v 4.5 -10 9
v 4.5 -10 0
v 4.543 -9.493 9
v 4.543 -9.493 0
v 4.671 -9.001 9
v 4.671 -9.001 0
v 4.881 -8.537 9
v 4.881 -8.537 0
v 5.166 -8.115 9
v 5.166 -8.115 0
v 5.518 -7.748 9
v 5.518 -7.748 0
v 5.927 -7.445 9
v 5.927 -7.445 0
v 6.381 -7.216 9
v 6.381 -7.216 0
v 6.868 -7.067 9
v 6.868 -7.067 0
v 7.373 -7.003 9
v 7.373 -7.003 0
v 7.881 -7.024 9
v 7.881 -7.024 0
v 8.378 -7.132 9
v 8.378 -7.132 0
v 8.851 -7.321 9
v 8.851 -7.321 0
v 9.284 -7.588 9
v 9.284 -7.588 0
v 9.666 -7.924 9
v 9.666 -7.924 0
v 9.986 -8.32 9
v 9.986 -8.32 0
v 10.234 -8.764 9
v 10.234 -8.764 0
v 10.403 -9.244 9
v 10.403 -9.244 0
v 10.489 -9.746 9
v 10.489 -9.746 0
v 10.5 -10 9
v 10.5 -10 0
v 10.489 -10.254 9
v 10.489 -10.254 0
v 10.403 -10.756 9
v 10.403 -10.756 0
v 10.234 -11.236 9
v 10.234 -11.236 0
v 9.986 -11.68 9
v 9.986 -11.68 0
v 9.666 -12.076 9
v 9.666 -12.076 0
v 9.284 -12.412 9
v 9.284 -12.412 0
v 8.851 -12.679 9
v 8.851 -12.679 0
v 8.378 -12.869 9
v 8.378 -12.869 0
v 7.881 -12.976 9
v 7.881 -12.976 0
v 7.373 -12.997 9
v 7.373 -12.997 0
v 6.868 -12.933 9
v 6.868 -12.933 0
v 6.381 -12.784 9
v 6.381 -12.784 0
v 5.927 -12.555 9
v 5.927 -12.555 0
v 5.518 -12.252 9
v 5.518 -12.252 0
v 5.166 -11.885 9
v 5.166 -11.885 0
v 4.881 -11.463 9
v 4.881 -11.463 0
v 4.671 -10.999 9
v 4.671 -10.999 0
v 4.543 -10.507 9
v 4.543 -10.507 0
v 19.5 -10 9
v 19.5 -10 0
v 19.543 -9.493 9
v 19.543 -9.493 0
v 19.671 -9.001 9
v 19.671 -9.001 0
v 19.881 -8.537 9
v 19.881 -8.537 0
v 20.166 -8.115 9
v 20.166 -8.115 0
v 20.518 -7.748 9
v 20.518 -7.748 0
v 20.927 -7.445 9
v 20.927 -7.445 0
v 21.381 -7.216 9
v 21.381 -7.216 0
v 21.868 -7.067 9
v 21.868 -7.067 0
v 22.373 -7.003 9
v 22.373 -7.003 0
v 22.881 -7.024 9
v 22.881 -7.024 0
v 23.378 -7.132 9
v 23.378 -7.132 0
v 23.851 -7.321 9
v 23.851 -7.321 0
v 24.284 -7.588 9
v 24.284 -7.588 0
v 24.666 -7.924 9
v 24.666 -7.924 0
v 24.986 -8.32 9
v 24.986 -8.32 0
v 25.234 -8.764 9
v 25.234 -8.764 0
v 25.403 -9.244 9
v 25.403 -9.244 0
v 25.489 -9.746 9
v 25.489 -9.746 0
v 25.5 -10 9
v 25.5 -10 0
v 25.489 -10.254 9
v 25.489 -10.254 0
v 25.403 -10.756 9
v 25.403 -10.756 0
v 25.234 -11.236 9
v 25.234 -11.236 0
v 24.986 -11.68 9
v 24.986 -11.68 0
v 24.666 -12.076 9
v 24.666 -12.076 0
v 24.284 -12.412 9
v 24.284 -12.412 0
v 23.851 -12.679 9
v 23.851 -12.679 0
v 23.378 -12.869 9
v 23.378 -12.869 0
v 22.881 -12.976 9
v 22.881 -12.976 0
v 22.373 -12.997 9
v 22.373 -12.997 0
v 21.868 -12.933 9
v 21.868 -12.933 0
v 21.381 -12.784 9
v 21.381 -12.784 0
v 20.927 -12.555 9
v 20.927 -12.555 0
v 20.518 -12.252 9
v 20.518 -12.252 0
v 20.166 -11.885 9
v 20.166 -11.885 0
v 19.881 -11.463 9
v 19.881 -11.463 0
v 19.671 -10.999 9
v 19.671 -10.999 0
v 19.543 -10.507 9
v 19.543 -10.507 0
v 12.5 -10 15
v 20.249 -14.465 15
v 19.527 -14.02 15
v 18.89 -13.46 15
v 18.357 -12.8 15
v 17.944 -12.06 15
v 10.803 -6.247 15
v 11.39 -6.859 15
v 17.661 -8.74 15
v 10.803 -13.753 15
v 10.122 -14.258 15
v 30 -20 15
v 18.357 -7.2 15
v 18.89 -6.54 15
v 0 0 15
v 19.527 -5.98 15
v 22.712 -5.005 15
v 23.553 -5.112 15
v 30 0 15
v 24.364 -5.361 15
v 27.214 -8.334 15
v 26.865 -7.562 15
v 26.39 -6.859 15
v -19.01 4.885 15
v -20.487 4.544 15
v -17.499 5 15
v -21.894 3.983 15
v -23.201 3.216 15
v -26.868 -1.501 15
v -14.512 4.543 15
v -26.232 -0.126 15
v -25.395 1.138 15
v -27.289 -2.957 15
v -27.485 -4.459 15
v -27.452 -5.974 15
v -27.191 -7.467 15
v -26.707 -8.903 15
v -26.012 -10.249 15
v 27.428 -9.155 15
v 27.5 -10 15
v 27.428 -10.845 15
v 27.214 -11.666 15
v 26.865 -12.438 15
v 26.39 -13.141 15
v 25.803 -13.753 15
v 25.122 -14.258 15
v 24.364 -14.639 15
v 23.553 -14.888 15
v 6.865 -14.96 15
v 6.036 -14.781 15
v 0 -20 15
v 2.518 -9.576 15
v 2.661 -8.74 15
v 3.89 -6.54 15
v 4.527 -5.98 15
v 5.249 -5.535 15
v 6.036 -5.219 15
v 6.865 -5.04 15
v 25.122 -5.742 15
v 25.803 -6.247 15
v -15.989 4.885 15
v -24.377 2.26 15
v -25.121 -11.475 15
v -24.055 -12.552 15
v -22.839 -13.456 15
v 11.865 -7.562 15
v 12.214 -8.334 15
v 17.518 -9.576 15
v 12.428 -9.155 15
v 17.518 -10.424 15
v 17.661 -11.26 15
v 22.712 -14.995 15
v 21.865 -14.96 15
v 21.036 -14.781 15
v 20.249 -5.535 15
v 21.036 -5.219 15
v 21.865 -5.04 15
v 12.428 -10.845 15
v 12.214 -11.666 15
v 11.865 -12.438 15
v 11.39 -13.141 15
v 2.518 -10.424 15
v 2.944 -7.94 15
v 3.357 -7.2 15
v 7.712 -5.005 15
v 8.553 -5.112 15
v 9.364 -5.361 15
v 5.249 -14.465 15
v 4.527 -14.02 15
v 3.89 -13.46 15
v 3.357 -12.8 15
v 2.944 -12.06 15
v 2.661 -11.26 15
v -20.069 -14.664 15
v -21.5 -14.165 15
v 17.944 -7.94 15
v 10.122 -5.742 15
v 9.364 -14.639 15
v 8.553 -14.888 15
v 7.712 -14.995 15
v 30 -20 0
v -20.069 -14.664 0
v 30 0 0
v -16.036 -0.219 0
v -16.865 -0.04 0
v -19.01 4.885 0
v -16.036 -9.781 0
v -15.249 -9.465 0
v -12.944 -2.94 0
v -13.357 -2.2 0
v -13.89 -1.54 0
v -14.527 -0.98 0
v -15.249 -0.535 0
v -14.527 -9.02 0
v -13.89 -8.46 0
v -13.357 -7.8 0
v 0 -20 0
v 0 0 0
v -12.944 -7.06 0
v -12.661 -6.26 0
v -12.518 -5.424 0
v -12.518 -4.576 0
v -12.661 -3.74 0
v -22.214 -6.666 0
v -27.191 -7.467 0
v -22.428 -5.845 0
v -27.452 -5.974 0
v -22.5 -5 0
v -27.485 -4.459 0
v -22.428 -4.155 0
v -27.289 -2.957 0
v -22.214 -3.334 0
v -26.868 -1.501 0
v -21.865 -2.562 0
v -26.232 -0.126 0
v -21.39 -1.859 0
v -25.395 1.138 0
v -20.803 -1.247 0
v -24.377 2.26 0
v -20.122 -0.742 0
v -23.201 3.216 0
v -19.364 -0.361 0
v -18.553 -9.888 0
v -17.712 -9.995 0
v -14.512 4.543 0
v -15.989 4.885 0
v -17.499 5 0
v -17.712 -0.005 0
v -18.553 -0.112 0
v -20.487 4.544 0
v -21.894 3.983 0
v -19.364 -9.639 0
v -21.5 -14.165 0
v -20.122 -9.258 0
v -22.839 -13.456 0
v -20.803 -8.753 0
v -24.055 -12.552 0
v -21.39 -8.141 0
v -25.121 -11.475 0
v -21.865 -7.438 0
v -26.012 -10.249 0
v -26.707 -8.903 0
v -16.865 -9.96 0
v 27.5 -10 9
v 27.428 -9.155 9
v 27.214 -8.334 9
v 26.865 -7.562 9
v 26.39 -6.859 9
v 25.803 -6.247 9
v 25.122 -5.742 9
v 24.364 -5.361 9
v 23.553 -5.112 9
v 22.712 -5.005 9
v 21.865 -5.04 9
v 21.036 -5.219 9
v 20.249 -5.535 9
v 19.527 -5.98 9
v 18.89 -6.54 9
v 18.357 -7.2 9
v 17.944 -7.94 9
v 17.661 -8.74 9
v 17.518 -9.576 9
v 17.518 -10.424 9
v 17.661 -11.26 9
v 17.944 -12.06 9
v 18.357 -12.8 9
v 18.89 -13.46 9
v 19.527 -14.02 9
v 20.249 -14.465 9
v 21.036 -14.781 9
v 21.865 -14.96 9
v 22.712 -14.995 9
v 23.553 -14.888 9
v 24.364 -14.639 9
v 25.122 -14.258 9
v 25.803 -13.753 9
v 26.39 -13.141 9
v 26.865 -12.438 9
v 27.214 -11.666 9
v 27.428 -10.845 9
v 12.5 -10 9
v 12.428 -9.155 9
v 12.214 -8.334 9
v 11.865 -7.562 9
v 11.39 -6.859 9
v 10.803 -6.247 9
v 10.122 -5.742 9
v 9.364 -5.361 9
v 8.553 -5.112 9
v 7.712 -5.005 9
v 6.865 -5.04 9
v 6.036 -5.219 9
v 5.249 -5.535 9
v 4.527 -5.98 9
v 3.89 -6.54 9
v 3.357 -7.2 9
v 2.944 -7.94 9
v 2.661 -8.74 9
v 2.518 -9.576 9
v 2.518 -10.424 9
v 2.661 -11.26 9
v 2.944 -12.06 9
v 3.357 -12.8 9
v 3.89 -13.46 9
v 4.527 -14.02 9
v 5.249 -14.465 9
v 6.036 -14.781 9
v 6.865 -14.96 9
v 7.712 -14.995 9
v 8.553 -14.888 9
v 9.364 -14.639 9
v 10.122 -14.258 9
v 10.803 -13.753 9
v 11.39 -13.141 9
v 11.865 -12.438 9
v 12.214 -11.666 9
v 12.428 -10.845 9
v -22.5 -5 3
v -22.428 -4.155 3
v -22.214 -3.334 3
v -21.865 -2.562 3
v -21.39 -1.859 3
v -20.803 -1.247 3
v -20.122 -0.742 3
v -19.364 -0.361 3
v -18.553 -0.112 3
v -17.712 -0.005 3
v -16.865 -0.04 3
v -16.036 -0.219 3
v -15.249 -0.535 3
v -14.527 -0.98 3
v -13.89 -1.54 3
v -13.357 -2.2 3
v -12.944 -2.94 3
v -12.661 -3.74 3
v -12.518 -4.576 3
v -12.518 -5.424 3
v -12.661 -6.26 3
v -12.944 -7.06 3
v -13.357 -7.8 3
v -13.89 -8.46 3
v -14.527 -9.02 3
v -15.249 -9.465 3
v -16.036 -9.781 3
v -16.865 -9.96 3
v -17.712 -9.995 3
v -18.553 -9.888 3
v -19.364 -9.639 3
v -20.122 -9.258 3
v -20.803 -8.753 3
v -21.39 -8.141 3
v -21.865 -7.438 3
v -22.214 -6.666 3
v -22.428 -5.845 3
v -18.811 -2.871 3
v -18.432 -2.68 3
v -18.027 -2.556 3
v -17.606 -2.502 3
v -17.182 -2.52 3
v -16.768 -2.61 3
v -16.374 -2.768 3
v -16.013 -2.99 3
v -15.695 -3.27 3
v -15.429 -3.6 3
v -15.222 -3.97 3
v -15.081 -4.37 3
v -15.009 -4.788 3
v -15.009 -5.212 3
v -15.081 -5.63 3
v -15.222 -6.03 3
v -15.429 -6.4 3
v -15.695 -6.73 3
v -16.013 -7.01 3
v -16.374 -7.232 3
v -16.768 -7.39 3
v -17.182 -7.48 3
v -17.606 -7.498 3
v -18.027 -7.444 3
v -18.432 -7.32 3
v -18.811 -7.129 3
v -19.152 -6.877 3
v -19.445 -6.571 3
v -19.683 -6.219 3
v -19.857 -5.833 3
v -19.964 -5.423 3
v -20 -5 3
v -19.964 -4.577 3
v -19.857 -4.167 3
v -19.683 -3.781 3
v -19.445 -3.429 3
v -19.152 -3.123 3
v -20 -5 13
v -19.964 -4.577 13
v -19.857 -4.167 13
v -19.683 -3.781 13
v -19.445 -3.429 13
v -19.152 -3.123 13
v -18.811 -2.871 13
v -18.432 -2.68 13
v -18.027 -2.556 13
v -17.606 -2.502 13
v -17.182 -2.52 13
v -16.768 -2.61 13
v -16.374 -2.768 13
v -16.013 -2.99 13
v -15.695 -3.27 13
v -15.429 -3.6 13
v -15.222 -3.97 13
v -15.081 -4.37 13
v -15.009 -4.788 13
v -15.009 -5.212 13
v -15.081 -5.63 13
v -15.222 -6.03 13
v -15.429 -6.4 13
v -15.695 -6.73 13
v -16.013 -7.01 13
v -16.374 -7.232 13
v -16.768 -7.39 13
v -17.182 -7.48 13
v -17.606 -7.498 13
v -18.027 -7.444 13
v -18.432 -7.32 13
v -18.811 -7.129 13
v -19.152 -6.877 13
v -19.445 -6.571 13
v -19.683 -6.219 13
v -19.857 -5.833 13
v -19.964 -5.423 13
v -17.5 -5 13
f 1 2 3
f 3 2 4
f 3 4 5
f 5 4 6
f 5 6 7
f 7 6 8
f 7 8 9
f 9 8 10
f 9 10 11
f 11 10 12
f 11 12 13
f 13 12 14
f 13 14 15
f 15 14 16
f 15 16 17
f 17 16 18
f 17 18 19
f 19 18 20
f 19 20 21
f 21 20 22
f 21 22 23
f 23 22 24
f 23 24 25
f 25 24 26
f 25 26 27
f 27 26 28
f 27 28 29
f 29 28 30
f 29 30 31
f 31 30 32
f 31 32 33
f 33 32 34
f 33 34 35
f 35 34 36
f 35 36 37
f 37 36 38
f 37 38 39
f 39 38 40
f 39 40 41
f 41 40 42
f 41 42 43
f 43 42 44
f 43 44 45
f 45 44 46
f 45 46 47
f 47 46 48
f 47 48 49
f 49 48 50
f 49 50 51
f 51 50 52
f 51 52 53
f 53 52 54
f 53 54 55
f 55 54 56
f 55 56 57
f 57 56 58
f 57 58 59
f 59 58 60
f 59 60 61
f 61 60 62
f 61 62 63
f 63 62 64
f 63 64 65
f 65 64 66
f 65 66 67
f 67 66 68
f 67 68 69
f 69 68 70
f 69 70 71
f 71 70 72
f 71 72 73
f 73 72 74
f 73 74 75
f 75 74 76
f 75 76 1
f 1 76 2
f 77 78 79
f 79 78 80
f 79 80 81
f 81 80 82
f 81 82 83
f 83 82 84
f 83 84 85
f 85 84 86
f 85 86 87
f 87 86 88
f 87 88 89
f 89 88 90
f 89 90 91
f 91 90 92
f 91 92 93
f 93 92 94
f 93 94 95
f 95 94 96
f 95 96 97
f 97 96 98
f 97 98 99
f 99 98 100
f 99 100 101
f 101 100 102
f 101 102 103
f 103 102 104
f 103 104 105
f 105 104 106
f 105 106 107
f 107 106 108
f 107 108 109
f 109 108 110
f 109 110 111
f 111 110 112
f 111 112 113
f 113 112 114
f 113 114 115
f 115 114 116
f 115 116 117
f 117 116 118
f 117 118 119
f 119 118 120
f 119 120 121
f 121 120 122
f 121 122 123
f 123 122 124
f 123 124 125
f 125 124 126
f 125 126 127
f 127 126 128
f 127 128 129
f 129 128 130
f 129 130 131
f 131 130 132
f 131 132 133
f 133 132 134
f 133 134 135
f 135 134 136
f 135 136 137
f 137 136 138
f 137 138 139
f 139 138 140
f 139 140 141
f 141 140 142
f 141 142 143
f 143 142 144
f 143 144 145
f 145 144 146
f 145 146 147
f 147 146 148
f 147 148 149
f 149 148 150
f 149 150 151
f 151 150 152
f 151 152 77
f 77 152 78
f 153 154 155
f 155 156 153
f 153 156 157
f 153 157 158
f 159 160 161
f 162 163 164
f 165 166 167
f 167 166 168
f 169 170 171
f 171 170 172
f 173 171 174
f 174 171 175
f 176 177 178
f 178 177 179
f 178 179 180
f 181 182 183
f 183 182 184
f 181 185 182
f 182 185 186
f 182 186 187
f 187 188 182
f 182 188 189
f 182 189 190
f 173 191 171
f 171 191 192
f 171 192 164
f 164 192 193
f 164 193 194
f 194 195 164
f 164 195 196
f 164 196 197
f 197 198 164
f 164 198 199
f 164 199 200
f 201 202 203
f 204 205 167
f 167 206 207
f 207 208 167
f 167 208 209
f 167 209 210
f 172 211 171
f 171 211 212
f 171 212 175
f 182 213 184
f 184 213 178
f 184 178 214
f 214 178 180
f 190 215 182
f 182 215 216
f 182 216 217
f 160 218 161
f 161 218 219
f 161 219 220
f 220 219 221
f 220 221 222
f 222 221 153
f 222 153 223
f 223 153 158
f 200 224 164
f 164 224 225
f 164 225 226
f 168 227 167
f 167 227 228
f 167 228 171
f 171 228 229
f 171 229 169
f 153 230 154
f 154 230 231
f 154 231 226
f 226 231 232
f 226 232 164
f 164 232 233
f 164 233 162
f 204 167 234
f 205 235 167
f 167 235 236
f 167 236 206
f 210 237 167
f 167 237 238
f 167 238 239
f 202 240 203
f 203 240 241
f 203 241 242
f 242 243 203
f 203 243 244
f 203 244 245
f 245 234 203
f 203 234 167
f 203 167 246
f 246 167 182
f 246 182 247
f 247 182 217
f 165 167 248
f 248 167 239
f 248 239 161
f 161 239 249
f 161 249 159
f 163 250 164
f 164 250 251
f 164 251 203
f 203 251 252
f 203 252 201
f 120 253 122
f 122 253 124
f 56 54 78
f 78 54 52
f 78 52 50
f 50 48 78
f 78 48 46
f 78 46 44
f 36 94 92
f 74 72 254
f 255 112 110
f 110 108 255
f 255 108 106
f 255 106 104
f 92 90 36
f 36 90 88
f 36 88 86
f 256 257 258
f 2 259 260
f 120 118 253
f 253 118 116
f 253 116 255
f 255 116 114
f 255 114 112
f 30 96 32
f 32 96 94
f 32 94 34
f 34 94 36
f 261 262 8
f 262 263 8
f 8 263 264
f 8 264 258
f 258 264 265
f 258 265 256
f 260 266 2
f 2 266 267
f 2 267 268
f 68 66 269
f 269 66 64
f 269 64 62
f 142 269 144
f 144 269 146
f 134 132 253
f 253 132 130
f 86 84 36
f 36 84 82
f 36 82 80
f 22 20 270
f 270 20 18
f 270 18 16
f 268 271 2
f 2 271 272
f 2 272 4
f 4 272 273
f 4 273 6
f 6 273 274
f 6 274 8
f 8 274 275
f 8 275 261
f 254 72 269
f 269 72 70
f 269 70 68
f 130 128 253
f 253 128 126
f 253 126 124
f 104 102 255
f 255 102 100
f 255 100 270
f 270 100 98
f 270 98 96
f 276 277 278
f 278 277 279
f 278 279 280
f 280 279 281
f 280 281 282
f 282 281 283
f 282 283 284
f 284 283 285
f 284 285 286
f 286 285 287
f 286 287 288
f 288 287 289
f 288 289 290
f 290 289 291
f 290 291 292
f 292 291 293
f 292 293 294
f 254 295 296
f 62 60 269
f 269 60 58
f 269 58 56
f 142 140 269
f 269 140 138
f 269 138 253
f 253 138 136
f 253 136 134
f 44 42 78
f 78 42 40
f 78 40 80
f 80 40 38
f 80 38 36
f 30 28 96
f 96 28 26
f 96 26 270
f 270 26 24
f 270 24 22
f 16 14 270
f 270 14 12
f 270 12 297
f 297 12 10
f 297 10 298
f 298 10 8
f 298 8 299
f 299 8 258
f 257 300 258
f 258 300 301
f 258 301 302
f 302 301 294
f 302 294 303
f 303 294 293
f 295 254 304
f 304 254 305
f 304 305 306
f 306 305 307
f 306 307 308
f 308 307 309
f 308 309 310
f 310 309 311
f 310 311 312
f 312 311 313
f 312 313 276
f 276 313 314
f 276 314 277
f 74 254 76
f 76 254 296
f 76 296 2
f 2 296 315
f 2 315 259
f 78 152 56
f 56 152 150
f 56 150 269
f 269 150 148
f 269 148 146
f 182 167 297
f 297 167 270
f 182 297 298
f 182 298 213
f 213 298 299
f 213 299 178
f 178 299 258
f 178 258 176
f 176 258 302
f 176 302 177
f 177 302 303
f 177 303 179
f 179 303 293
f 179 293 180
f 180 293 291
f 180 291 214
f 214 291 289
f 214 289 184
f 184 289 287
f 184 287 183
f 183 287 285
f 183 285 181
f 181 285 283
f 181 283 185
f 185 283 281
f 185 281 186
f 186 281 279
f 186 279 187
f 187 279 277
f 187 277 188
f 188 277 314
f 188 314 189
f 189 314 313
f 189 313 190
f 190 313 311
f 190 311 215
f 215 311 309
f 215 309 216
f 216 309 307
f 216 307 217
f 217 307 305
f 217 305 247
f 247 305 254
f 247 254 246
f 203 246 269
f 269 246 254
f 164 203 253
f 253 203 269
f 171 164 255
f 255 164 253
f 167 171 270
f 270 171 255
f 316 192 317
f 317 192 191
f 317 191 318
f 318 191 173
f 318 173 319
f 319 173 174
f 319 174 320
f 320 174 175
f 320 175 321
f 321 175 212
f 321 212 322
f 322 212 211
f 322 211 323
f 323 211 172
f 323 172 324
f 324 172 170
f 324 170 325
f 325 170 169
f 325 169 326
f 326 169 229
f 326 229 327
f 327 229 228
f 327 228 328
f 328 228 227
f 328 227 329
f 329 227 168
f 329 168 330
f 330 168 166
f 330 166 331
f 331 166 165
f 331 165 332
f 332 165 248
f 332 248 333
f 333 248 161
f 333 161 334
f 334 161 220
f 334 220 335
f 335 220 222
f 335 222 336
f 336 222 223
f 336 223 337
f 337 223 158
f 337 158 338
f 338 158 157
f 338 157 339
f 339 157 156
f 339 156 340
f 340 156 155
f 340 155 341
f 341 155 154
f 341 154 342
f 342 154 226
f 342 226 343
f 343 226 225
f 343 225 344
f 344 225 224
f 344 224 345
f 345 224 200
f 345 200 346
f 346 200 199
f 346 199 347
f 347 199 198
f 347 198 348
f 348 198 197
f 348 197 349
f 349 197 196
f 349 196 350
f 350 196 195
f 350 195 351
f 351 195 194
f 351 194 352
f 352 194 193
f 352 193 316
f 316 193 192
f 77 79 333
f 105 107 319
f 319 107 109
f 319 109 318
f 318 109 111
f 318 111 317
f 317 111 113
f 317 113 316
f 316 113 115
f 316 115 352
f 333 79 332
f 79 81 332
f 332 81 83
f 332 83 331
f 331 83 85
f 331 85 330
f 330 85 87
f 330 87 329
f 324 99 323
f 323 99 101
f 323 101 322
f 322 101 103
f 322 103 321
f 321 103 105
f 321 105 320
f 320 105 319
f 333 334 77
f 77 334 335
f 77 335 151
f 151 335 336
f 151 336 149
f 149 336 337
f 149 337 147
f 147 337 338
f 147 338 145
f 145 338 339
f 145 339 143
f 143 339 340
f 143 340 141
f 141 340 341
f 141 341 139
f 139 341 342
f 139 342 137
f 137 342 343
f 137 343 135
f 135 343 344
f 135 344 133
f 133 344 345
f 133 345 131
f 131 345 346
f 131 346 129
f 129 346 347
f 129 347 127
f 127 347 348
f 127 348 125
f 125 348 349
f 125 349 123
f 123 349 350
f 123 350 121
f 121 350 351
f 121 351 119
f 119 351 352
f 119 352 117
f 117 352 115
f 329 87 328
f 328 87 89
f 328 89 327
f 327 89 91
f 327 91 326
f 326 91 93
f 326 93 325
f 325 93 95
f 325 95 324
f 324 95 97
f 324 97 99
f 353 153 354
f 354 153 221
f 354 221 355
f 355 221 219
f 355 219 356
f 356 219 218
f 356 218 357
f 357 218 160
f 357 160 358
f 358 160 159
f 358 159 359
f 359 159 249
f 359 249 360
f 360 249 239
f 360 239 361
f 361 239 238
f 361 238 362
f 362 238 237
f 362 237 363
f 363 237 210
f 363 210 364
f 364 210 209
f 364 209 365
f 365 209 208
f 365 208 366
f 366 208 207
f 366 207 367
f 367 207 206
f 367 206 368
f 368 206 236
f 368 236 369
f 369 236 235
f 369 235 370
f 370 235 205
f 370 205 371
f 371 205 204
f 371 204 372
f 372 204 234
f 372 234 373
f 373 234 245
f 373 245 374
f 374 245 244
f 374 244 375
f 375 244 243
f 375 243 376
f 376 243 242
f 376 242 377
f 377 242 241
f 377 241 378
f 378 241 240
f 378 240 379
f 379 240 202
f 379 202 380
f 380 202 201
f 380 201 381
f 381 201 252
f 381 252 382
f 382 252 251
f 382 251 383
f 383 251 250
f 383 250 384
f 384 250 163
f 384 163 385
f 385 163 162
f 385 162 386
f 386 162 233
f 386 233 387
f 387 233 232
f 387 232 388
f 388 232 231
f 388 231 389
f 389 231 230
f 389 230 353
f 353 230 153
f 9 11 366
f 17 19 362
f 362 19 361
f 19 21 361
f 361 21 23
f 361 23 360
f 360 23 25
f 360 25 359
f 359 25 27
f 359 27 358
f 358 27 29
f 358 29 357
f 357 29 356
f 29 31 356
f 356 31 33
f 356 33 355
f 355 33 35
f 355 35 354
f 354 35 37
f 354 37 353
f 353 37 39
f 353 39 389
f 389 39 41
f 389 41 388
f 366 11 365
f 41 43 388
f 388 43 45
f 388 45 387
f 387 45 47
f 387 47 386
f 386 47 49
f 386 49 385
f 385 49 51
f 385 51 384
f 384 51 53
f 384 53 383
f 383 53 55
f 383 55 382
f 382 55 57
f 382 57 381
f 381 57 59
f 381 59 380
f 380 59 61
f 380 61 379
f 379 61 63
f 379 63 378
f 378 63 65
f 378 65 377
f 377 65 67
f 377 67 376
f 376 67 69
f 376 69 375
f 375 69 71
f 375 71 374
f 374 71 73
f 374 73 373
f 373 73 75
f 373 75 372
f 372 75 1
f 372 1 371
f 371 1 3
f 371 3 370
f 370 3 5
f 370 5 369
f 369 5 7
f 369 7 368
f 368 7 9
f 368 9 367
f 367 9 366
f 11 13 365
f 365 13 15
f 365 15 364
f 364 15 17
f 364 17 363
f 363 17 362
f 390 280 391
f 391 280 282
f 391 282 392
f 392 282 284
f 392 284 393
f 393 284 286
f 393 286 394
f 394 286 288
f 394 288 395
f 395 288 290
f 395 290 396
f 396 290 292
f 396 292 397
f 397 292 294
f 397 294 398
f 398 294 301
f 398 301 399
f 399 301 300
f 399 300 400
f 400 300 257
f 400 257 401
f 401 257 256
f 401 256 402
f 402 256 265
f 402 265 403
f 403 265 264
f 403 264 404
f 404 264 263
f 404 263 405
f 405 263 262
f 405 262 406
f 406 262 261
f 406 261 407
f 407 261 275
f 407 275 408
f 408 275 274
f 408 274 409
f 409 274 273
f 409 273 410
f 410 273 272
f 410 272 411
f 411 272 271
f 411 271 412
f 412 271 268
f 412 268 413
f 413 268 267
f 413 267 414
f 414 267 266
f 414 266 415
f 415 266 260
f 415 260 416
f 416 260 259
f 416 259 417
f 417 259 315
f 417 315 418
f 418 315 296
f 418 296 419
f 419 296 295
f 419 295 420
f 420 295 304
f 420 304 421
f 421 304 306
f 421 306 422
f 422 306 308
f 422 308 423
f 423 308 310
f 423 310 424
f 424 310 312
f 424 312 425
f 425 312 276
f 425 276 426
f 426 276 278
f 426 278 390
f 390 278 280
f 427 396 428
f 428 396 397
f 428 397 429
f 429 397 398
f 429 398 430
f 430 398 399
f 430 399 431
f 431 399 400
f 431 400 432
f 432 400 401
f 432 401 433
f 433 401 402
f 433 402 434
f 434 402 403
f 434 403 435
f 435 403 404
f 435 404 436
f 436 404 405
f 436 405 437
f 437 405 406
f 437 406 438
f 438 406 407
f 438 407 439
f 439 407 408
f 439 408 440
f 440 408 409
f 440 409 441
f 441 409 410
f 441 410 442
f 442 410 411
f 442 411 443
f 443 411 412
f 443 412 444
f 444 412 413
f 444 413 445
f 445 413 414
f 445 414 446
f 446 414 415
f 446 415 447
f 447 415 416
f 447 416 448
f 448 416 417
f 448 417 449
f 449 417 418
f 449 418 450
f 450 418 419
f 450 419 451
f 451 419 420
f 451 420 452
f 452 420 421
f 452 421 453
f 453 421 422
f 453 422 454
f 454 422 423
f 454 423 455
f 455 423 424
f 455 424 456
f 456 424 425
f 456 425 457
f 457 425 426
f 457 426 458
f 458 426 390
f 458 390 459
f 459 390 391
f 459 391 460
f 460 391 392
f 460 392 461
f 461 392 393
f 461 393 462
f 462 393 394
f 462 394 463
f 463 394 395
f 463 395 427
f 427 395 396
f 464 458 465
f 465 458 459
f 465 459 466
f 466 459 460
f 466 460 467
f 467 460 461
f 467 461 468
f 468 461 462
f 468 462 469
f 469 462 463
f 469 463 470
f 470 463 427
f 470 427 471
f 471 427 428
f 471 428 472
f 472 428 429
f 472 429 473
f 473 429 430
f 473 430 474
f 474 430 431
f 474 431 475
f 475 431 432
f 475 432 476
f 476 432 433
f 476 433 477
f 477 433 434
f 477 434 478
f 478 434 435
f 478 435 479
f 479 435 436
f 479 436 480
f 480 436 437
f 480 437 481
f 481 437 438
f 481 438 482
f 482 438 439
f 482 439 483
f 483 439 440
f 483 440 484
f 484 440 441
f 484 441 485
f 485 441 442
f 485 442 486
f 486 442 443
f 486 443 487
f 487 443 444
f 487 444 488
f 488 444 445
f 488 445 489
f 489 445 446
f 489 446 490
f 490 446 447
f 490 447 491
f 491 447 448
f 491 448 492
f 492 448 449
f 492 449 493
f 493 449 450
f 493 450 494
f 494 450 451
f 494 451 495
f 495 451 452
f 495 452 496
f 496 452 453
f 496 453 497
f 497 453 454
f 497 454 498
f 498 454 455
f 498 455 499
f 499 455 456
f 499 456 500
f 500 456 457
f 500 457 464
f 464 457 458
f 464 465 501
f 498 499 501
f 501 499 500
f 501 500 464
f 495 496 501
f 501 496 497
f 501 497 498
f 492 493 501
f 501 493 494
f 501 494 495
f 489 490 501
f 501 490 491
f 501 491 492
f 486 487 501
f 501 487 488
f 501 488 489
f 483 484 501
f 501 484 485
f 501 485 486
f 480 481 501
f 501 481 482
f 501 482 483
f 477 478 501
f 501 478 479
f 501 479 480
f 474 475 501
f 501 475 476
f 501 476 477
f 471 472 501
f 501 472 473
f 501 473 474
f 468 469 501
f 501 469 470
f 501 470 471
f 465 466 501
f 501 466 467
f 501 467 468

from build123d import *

# Parameters (mm, degrees)
SKETCH_1_R          = 3
EXTRUDE_1_DEPTH     = 15
SKETCH_2_R          = 5
CUT_EXTRUDE_1_DEPTH = 6
SKETCH_3_R          = 5
CUT_EXTRUDE_2_DEPTH = 3
SKETCH_4_R          = 2.5
CUT_EXTRUDE_3_DEPTH = 10


with BuildPart() as part:
    # 草图1 → 凸台-拉伸1 (new body)
    with BuildSketch(Plane.XY):
        with BuildLine():
            Line((0, 0), (30, 0))
            Line((30, 0), (30, -20))
            Line((30, -20), (0, -20))
            Line((0, -20), (-20.06938155, -14.664278475))
            ThreePointArc((-20.06938155, -14.664278475), (-27.106051537, -2.220832162), (-14.512363219, 4.543271266))
            Line((-14.512363219, 4.543271266), (0, 0))
        make_face()
        with Locations((7.5, -10)):
            Circle(SKETCH_1_R, mode=Mode.SUBTRACT)
        with Locations((22.5, -10)):
            Circle(SKETCH_1_R, mode=Mode.SUBTRACT)
    extrude(amount=EXTRUDE_1_DEPTH)

    # 草图2 → 切除-拉伸1 (cut)
    with BuildSketch(Plane.XY.offset(15)):
        with Locations((7.5, -10)):
            Circle(SKETCH_2_R)
        with Locations((22.5, -10)):
            Circle(SKETCH_2_R)
    extrude(amount=-CUT_EXTRUDE_1_DEPTH, mode=Mode.SUBTRACT)

    # 草图3 → 切除-拉伸2 (cut)
    with BuildSketch(Plane(origin=(0, 0, 0), x_dir=(-1, 0, 0), z_dir=(0, 0, -1))):
        with Locations((17.5, -5)):
            Circle(SKETCH_3_R)
    extrude(amount=-CUT_EXTRUDE_2_DEPTH, mode=Mode.SUBTRACT)

    # 草图4 → 切除-拉伸3 (cut)
    with BuildSketch(Plane(origin=(0, 0, 3), x_dir=(-1, 0, 0), z_dir=(0, 0, -1))):
        with Locations((17.5, -5)):
            Circle(SKETCH_4_R)
    extrude(amount=-CUT_EXTRUDE_3_DEPTH, mode=Mode.SUBTRACT)


solid = part.part
